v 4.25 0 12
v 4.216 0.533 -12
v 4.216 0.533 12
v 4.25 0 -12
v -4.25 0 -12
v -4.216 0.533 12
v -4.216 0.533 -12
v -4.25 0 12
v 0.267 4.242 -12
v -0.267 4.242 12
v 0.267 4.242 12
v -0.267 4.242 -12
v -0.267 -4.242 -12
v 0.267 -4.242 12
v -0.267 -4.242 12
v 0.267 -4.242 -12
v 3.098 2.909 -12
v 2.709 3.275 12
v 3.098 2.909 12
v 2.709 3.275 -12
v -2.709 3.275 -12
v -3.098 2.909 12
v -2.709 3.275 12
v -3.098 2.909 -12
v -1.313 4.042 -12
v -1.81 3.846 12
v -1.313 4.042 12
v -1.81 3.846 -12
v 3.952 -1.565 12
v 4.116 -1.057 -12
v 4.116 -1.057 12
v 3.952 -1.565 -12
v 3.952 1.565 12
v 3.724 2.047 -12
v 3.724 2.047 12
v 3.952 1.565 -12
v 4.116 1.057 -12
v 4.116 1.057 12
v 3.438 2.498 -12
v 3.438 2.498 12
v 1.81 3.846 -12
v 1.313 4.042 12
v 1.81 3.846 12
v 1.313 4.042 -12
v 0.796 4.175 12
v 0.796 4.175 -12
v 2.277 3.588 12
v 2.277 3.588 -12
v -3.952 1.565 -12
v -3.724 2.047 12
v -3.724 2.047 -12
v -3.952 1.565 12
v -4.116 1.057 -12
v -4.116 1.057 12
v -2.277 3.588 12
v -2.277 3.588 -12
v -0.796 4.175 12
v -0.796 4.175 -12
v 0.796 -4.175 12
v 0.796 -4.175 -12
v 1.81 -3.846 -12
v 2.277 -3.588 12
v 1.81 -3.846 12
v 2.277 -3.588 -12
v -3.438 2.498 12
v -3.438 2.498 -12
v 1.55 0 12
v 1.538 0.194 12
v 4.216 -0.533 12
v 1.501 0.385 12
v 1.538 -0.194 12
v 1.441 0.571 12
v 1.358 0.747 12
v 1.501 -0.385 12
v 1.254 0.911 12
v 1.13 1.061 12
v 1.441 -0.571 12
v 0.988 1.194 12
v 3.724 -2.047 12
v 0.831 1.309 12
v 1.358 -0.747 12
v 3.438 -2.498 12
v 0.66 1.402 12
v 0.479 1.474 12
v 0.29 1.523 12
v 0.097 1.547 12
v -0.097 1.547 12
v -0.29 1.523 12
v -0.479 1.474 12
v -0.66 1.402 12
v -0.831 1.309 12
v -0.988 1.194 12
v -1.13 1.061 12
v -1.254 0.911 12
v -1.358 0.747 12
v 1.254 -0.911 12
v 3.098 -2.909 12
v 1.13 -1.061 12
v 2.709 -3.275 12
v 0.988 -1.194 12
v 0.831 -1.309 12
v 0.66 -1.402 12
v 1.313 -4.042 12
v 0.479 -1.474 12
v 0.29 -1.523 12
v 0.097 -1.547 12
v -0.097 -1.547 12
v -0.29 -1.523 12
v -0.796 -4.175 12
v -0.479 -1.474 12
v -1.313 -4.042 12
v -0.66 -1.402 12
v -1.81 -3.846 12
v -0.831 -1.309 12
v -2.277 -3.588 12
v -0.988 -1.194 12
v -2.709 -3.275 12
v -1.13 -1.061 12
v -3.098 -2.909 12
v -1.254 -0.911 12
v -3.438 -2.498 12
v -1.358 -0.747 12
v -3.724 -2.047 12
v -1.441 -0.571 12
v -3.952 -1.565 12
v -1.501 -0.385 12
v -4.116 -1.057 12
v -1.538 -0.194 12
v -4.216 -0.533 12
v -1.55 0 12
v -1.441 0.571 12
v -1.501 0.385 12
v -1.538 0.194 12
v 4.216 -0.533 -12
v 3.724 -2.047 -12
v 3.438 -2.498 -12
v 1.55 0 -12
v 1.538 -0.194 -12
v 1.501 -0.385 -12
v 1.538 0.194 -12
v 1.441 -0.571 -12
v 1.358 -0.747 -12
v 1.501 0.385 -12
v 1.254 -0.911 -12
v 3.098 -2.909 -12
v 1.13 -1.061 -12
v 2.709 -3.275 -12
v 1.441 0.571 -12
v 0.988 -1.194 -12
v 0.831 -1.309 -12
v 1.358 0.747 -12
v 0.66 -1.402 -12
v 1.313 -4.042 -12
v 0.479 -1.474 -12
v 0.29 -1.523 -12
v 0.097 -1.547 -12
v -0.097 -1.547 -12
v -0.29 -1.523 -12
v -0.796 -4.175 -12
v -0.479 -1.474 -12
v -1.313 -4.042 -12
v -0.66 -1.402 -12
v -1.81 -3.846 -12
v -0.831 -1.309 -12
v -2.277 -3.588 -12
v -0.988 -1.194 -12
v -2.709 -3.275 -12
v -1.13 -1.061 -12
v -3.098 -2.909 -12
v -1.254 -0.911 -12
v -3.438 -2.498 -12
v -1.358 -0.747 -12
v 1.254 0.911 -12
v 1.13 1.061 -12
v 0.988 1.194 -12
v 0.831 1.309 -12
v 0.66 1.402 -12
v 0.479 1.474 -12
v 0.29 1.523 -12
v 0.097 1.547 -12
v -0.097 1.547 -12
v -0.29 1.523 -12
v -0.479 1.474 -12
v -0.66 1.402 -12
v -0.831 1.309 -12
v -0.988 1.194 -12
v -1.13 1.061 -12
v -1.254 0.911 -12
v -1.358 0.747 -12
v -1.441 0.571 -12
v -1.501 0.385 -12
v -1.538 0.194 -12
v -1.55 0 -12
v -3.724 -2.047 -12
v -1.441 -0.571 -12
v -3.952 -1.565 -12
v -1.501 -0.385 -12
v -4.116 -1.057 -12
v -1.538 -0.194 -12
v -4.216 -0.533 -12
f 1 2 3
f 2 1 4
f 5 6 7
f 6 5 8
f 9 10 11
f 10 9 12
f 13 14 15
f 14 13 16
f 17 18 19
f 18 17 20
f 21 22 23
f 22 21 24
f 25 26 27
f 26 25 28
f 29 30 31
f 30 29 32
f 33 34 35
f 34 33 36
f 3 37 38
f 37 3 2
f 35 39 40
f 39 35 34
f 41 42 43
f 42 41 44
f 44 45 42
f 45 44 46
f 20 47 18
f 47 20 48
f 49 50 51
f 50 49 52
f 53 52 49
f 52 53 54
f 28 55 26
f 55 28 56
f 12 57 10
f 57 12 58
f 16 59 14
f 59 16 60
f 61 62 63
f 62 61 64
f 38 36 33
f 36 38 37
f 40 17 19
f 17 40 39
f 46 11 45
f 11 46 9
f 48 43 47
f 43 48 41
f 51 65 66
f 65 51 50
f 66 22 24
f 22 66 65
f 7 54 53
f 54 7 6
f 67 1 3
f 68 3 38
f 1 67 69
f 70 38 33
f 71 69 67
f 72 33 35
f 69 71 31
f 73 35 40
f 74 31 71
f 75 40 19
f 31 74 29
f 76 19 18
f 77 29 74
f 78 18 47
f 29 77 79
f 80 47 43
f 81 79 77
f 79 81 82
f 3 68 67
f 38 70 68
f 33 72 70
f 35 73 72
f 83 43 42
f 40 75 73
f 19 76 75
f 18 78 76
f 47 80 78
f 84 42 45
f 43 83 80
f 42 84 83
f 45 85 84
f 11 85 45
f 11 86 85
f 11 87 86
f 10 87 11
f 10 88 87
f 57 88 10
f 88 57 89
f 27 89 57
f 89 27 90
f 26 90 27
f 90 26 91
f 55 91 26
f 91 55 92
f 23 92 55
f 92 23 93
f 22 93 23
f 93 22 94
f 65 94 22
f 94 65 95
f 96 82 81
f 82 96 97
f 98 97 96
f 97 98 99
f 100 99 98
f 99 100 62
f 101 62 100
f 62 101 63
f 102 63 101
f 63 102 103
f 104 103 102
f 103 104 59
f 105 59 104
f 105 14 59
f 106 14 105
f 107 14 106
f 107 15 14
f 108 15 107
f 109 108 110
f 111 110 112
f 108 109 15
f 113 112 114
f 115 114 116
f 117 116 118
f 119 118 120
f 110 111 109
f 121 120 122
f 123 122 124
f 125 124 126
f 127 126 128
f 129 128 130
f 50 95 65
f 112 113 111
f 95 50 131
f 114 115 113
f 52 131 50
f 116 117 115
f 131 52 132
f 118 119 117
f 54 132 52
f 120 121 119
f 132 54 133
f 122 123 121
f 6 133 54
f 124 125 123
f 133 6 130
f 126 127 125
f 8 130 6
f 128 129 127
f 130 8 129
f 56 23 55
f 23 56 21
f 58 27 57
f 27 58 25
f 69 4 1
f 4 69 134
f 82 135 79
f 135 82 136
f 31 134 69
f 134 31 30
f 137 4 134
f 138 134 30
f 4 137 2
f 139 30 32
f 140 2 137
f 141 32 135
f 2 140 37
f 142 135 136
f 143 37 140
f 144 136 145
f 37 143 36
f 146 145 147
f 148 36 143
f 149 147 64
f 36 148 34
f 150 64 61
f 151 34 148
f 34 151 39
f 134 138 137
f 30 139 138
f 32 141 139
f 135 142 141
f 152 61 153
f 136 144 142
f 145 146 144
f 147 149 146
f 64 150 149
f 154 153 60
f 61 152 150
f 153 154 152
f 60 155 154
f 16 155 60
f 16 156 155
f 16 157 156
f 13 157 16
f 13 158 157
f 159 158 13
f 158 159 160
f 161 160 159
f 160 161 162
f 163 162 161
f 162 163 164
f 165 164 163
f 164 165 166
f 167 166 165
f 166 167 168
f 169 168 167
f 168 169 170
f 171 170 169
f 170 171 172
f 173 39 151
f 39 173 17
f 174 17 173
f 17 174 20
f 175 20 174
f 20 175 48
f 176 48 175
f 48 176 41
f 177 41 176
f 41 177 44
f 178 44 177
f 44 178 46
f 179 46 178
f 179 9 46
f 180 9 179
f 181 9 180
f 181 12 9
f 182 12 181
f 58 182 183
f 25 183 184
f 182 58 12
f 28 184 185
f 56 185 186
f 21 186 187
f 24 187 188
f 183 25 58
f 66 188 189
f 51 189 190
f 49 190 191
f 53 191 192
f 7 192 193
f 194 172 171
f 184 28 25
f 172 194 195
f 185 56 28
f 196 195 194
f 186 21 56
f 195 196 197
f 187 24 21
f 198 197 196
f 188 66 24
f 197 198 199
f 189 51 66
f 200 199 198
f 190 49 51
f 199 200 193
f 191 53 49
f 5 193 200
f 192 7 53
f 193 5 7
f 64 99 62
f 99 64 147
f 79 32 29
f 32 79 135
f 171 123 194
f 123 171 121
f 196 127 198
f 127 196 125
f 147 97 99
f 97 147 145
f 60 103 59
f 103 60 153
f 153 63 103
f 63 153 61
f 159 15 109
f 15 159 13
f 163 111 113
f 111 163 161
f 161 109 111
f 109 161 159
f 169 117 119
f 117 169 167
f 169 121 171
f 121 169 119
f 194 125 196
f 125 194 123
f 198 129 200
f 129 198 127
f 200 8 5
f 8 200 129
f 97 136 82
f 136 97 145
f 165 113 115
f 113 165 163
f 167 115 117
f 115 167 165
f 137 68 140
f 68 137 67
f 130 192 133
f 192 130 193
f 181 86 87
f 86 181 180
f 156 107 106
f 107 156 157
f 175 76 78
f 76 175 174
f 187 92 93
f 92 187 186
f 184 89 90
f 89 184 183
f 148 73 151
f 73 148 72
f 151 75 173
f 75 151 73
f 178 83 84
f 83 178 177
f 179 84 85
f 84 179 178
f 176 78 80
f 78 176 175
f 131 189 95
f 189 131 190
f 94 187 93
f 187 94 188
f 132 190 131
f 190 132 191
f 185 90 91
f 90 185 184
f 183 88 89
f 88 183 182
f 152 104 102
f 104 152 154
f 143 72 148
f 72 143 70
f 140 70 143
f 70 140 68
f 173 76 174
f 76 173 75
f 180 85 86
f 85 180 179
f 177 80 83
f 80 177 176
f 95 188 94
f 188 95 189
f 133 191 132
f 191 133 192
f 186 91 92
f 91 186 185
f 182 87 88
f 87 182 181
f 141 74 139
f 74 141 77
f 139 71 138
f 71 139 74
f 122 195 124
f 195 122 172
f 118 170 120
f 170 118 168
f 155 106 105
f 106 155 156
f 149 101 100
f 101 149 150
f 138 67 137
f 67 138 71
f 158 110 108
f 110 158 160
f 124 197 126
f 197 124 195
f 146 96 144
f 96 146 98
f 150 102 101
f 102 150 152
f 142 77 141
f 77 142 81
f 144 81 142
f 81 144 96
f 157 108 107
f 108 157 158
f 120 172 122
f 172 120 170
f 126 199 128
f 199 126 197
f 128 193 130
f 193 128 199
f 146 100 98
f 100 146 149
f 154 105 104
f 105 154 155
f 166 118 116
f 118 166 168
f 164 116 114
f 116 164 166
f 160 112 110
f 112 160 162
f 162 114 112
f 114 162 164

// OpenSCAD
$fn = 50;


difference() {
	union() {
		translate(v = [0, 0, -12.0000000000]) {
			cylinder(h = 24, r = 4.2500000000);
		}
	}
	union() {
		translate(v = [0, 0, -100.0000000000]) {
			cylinder(h = 200, r = 1.5500000000);
		}
	}
}
